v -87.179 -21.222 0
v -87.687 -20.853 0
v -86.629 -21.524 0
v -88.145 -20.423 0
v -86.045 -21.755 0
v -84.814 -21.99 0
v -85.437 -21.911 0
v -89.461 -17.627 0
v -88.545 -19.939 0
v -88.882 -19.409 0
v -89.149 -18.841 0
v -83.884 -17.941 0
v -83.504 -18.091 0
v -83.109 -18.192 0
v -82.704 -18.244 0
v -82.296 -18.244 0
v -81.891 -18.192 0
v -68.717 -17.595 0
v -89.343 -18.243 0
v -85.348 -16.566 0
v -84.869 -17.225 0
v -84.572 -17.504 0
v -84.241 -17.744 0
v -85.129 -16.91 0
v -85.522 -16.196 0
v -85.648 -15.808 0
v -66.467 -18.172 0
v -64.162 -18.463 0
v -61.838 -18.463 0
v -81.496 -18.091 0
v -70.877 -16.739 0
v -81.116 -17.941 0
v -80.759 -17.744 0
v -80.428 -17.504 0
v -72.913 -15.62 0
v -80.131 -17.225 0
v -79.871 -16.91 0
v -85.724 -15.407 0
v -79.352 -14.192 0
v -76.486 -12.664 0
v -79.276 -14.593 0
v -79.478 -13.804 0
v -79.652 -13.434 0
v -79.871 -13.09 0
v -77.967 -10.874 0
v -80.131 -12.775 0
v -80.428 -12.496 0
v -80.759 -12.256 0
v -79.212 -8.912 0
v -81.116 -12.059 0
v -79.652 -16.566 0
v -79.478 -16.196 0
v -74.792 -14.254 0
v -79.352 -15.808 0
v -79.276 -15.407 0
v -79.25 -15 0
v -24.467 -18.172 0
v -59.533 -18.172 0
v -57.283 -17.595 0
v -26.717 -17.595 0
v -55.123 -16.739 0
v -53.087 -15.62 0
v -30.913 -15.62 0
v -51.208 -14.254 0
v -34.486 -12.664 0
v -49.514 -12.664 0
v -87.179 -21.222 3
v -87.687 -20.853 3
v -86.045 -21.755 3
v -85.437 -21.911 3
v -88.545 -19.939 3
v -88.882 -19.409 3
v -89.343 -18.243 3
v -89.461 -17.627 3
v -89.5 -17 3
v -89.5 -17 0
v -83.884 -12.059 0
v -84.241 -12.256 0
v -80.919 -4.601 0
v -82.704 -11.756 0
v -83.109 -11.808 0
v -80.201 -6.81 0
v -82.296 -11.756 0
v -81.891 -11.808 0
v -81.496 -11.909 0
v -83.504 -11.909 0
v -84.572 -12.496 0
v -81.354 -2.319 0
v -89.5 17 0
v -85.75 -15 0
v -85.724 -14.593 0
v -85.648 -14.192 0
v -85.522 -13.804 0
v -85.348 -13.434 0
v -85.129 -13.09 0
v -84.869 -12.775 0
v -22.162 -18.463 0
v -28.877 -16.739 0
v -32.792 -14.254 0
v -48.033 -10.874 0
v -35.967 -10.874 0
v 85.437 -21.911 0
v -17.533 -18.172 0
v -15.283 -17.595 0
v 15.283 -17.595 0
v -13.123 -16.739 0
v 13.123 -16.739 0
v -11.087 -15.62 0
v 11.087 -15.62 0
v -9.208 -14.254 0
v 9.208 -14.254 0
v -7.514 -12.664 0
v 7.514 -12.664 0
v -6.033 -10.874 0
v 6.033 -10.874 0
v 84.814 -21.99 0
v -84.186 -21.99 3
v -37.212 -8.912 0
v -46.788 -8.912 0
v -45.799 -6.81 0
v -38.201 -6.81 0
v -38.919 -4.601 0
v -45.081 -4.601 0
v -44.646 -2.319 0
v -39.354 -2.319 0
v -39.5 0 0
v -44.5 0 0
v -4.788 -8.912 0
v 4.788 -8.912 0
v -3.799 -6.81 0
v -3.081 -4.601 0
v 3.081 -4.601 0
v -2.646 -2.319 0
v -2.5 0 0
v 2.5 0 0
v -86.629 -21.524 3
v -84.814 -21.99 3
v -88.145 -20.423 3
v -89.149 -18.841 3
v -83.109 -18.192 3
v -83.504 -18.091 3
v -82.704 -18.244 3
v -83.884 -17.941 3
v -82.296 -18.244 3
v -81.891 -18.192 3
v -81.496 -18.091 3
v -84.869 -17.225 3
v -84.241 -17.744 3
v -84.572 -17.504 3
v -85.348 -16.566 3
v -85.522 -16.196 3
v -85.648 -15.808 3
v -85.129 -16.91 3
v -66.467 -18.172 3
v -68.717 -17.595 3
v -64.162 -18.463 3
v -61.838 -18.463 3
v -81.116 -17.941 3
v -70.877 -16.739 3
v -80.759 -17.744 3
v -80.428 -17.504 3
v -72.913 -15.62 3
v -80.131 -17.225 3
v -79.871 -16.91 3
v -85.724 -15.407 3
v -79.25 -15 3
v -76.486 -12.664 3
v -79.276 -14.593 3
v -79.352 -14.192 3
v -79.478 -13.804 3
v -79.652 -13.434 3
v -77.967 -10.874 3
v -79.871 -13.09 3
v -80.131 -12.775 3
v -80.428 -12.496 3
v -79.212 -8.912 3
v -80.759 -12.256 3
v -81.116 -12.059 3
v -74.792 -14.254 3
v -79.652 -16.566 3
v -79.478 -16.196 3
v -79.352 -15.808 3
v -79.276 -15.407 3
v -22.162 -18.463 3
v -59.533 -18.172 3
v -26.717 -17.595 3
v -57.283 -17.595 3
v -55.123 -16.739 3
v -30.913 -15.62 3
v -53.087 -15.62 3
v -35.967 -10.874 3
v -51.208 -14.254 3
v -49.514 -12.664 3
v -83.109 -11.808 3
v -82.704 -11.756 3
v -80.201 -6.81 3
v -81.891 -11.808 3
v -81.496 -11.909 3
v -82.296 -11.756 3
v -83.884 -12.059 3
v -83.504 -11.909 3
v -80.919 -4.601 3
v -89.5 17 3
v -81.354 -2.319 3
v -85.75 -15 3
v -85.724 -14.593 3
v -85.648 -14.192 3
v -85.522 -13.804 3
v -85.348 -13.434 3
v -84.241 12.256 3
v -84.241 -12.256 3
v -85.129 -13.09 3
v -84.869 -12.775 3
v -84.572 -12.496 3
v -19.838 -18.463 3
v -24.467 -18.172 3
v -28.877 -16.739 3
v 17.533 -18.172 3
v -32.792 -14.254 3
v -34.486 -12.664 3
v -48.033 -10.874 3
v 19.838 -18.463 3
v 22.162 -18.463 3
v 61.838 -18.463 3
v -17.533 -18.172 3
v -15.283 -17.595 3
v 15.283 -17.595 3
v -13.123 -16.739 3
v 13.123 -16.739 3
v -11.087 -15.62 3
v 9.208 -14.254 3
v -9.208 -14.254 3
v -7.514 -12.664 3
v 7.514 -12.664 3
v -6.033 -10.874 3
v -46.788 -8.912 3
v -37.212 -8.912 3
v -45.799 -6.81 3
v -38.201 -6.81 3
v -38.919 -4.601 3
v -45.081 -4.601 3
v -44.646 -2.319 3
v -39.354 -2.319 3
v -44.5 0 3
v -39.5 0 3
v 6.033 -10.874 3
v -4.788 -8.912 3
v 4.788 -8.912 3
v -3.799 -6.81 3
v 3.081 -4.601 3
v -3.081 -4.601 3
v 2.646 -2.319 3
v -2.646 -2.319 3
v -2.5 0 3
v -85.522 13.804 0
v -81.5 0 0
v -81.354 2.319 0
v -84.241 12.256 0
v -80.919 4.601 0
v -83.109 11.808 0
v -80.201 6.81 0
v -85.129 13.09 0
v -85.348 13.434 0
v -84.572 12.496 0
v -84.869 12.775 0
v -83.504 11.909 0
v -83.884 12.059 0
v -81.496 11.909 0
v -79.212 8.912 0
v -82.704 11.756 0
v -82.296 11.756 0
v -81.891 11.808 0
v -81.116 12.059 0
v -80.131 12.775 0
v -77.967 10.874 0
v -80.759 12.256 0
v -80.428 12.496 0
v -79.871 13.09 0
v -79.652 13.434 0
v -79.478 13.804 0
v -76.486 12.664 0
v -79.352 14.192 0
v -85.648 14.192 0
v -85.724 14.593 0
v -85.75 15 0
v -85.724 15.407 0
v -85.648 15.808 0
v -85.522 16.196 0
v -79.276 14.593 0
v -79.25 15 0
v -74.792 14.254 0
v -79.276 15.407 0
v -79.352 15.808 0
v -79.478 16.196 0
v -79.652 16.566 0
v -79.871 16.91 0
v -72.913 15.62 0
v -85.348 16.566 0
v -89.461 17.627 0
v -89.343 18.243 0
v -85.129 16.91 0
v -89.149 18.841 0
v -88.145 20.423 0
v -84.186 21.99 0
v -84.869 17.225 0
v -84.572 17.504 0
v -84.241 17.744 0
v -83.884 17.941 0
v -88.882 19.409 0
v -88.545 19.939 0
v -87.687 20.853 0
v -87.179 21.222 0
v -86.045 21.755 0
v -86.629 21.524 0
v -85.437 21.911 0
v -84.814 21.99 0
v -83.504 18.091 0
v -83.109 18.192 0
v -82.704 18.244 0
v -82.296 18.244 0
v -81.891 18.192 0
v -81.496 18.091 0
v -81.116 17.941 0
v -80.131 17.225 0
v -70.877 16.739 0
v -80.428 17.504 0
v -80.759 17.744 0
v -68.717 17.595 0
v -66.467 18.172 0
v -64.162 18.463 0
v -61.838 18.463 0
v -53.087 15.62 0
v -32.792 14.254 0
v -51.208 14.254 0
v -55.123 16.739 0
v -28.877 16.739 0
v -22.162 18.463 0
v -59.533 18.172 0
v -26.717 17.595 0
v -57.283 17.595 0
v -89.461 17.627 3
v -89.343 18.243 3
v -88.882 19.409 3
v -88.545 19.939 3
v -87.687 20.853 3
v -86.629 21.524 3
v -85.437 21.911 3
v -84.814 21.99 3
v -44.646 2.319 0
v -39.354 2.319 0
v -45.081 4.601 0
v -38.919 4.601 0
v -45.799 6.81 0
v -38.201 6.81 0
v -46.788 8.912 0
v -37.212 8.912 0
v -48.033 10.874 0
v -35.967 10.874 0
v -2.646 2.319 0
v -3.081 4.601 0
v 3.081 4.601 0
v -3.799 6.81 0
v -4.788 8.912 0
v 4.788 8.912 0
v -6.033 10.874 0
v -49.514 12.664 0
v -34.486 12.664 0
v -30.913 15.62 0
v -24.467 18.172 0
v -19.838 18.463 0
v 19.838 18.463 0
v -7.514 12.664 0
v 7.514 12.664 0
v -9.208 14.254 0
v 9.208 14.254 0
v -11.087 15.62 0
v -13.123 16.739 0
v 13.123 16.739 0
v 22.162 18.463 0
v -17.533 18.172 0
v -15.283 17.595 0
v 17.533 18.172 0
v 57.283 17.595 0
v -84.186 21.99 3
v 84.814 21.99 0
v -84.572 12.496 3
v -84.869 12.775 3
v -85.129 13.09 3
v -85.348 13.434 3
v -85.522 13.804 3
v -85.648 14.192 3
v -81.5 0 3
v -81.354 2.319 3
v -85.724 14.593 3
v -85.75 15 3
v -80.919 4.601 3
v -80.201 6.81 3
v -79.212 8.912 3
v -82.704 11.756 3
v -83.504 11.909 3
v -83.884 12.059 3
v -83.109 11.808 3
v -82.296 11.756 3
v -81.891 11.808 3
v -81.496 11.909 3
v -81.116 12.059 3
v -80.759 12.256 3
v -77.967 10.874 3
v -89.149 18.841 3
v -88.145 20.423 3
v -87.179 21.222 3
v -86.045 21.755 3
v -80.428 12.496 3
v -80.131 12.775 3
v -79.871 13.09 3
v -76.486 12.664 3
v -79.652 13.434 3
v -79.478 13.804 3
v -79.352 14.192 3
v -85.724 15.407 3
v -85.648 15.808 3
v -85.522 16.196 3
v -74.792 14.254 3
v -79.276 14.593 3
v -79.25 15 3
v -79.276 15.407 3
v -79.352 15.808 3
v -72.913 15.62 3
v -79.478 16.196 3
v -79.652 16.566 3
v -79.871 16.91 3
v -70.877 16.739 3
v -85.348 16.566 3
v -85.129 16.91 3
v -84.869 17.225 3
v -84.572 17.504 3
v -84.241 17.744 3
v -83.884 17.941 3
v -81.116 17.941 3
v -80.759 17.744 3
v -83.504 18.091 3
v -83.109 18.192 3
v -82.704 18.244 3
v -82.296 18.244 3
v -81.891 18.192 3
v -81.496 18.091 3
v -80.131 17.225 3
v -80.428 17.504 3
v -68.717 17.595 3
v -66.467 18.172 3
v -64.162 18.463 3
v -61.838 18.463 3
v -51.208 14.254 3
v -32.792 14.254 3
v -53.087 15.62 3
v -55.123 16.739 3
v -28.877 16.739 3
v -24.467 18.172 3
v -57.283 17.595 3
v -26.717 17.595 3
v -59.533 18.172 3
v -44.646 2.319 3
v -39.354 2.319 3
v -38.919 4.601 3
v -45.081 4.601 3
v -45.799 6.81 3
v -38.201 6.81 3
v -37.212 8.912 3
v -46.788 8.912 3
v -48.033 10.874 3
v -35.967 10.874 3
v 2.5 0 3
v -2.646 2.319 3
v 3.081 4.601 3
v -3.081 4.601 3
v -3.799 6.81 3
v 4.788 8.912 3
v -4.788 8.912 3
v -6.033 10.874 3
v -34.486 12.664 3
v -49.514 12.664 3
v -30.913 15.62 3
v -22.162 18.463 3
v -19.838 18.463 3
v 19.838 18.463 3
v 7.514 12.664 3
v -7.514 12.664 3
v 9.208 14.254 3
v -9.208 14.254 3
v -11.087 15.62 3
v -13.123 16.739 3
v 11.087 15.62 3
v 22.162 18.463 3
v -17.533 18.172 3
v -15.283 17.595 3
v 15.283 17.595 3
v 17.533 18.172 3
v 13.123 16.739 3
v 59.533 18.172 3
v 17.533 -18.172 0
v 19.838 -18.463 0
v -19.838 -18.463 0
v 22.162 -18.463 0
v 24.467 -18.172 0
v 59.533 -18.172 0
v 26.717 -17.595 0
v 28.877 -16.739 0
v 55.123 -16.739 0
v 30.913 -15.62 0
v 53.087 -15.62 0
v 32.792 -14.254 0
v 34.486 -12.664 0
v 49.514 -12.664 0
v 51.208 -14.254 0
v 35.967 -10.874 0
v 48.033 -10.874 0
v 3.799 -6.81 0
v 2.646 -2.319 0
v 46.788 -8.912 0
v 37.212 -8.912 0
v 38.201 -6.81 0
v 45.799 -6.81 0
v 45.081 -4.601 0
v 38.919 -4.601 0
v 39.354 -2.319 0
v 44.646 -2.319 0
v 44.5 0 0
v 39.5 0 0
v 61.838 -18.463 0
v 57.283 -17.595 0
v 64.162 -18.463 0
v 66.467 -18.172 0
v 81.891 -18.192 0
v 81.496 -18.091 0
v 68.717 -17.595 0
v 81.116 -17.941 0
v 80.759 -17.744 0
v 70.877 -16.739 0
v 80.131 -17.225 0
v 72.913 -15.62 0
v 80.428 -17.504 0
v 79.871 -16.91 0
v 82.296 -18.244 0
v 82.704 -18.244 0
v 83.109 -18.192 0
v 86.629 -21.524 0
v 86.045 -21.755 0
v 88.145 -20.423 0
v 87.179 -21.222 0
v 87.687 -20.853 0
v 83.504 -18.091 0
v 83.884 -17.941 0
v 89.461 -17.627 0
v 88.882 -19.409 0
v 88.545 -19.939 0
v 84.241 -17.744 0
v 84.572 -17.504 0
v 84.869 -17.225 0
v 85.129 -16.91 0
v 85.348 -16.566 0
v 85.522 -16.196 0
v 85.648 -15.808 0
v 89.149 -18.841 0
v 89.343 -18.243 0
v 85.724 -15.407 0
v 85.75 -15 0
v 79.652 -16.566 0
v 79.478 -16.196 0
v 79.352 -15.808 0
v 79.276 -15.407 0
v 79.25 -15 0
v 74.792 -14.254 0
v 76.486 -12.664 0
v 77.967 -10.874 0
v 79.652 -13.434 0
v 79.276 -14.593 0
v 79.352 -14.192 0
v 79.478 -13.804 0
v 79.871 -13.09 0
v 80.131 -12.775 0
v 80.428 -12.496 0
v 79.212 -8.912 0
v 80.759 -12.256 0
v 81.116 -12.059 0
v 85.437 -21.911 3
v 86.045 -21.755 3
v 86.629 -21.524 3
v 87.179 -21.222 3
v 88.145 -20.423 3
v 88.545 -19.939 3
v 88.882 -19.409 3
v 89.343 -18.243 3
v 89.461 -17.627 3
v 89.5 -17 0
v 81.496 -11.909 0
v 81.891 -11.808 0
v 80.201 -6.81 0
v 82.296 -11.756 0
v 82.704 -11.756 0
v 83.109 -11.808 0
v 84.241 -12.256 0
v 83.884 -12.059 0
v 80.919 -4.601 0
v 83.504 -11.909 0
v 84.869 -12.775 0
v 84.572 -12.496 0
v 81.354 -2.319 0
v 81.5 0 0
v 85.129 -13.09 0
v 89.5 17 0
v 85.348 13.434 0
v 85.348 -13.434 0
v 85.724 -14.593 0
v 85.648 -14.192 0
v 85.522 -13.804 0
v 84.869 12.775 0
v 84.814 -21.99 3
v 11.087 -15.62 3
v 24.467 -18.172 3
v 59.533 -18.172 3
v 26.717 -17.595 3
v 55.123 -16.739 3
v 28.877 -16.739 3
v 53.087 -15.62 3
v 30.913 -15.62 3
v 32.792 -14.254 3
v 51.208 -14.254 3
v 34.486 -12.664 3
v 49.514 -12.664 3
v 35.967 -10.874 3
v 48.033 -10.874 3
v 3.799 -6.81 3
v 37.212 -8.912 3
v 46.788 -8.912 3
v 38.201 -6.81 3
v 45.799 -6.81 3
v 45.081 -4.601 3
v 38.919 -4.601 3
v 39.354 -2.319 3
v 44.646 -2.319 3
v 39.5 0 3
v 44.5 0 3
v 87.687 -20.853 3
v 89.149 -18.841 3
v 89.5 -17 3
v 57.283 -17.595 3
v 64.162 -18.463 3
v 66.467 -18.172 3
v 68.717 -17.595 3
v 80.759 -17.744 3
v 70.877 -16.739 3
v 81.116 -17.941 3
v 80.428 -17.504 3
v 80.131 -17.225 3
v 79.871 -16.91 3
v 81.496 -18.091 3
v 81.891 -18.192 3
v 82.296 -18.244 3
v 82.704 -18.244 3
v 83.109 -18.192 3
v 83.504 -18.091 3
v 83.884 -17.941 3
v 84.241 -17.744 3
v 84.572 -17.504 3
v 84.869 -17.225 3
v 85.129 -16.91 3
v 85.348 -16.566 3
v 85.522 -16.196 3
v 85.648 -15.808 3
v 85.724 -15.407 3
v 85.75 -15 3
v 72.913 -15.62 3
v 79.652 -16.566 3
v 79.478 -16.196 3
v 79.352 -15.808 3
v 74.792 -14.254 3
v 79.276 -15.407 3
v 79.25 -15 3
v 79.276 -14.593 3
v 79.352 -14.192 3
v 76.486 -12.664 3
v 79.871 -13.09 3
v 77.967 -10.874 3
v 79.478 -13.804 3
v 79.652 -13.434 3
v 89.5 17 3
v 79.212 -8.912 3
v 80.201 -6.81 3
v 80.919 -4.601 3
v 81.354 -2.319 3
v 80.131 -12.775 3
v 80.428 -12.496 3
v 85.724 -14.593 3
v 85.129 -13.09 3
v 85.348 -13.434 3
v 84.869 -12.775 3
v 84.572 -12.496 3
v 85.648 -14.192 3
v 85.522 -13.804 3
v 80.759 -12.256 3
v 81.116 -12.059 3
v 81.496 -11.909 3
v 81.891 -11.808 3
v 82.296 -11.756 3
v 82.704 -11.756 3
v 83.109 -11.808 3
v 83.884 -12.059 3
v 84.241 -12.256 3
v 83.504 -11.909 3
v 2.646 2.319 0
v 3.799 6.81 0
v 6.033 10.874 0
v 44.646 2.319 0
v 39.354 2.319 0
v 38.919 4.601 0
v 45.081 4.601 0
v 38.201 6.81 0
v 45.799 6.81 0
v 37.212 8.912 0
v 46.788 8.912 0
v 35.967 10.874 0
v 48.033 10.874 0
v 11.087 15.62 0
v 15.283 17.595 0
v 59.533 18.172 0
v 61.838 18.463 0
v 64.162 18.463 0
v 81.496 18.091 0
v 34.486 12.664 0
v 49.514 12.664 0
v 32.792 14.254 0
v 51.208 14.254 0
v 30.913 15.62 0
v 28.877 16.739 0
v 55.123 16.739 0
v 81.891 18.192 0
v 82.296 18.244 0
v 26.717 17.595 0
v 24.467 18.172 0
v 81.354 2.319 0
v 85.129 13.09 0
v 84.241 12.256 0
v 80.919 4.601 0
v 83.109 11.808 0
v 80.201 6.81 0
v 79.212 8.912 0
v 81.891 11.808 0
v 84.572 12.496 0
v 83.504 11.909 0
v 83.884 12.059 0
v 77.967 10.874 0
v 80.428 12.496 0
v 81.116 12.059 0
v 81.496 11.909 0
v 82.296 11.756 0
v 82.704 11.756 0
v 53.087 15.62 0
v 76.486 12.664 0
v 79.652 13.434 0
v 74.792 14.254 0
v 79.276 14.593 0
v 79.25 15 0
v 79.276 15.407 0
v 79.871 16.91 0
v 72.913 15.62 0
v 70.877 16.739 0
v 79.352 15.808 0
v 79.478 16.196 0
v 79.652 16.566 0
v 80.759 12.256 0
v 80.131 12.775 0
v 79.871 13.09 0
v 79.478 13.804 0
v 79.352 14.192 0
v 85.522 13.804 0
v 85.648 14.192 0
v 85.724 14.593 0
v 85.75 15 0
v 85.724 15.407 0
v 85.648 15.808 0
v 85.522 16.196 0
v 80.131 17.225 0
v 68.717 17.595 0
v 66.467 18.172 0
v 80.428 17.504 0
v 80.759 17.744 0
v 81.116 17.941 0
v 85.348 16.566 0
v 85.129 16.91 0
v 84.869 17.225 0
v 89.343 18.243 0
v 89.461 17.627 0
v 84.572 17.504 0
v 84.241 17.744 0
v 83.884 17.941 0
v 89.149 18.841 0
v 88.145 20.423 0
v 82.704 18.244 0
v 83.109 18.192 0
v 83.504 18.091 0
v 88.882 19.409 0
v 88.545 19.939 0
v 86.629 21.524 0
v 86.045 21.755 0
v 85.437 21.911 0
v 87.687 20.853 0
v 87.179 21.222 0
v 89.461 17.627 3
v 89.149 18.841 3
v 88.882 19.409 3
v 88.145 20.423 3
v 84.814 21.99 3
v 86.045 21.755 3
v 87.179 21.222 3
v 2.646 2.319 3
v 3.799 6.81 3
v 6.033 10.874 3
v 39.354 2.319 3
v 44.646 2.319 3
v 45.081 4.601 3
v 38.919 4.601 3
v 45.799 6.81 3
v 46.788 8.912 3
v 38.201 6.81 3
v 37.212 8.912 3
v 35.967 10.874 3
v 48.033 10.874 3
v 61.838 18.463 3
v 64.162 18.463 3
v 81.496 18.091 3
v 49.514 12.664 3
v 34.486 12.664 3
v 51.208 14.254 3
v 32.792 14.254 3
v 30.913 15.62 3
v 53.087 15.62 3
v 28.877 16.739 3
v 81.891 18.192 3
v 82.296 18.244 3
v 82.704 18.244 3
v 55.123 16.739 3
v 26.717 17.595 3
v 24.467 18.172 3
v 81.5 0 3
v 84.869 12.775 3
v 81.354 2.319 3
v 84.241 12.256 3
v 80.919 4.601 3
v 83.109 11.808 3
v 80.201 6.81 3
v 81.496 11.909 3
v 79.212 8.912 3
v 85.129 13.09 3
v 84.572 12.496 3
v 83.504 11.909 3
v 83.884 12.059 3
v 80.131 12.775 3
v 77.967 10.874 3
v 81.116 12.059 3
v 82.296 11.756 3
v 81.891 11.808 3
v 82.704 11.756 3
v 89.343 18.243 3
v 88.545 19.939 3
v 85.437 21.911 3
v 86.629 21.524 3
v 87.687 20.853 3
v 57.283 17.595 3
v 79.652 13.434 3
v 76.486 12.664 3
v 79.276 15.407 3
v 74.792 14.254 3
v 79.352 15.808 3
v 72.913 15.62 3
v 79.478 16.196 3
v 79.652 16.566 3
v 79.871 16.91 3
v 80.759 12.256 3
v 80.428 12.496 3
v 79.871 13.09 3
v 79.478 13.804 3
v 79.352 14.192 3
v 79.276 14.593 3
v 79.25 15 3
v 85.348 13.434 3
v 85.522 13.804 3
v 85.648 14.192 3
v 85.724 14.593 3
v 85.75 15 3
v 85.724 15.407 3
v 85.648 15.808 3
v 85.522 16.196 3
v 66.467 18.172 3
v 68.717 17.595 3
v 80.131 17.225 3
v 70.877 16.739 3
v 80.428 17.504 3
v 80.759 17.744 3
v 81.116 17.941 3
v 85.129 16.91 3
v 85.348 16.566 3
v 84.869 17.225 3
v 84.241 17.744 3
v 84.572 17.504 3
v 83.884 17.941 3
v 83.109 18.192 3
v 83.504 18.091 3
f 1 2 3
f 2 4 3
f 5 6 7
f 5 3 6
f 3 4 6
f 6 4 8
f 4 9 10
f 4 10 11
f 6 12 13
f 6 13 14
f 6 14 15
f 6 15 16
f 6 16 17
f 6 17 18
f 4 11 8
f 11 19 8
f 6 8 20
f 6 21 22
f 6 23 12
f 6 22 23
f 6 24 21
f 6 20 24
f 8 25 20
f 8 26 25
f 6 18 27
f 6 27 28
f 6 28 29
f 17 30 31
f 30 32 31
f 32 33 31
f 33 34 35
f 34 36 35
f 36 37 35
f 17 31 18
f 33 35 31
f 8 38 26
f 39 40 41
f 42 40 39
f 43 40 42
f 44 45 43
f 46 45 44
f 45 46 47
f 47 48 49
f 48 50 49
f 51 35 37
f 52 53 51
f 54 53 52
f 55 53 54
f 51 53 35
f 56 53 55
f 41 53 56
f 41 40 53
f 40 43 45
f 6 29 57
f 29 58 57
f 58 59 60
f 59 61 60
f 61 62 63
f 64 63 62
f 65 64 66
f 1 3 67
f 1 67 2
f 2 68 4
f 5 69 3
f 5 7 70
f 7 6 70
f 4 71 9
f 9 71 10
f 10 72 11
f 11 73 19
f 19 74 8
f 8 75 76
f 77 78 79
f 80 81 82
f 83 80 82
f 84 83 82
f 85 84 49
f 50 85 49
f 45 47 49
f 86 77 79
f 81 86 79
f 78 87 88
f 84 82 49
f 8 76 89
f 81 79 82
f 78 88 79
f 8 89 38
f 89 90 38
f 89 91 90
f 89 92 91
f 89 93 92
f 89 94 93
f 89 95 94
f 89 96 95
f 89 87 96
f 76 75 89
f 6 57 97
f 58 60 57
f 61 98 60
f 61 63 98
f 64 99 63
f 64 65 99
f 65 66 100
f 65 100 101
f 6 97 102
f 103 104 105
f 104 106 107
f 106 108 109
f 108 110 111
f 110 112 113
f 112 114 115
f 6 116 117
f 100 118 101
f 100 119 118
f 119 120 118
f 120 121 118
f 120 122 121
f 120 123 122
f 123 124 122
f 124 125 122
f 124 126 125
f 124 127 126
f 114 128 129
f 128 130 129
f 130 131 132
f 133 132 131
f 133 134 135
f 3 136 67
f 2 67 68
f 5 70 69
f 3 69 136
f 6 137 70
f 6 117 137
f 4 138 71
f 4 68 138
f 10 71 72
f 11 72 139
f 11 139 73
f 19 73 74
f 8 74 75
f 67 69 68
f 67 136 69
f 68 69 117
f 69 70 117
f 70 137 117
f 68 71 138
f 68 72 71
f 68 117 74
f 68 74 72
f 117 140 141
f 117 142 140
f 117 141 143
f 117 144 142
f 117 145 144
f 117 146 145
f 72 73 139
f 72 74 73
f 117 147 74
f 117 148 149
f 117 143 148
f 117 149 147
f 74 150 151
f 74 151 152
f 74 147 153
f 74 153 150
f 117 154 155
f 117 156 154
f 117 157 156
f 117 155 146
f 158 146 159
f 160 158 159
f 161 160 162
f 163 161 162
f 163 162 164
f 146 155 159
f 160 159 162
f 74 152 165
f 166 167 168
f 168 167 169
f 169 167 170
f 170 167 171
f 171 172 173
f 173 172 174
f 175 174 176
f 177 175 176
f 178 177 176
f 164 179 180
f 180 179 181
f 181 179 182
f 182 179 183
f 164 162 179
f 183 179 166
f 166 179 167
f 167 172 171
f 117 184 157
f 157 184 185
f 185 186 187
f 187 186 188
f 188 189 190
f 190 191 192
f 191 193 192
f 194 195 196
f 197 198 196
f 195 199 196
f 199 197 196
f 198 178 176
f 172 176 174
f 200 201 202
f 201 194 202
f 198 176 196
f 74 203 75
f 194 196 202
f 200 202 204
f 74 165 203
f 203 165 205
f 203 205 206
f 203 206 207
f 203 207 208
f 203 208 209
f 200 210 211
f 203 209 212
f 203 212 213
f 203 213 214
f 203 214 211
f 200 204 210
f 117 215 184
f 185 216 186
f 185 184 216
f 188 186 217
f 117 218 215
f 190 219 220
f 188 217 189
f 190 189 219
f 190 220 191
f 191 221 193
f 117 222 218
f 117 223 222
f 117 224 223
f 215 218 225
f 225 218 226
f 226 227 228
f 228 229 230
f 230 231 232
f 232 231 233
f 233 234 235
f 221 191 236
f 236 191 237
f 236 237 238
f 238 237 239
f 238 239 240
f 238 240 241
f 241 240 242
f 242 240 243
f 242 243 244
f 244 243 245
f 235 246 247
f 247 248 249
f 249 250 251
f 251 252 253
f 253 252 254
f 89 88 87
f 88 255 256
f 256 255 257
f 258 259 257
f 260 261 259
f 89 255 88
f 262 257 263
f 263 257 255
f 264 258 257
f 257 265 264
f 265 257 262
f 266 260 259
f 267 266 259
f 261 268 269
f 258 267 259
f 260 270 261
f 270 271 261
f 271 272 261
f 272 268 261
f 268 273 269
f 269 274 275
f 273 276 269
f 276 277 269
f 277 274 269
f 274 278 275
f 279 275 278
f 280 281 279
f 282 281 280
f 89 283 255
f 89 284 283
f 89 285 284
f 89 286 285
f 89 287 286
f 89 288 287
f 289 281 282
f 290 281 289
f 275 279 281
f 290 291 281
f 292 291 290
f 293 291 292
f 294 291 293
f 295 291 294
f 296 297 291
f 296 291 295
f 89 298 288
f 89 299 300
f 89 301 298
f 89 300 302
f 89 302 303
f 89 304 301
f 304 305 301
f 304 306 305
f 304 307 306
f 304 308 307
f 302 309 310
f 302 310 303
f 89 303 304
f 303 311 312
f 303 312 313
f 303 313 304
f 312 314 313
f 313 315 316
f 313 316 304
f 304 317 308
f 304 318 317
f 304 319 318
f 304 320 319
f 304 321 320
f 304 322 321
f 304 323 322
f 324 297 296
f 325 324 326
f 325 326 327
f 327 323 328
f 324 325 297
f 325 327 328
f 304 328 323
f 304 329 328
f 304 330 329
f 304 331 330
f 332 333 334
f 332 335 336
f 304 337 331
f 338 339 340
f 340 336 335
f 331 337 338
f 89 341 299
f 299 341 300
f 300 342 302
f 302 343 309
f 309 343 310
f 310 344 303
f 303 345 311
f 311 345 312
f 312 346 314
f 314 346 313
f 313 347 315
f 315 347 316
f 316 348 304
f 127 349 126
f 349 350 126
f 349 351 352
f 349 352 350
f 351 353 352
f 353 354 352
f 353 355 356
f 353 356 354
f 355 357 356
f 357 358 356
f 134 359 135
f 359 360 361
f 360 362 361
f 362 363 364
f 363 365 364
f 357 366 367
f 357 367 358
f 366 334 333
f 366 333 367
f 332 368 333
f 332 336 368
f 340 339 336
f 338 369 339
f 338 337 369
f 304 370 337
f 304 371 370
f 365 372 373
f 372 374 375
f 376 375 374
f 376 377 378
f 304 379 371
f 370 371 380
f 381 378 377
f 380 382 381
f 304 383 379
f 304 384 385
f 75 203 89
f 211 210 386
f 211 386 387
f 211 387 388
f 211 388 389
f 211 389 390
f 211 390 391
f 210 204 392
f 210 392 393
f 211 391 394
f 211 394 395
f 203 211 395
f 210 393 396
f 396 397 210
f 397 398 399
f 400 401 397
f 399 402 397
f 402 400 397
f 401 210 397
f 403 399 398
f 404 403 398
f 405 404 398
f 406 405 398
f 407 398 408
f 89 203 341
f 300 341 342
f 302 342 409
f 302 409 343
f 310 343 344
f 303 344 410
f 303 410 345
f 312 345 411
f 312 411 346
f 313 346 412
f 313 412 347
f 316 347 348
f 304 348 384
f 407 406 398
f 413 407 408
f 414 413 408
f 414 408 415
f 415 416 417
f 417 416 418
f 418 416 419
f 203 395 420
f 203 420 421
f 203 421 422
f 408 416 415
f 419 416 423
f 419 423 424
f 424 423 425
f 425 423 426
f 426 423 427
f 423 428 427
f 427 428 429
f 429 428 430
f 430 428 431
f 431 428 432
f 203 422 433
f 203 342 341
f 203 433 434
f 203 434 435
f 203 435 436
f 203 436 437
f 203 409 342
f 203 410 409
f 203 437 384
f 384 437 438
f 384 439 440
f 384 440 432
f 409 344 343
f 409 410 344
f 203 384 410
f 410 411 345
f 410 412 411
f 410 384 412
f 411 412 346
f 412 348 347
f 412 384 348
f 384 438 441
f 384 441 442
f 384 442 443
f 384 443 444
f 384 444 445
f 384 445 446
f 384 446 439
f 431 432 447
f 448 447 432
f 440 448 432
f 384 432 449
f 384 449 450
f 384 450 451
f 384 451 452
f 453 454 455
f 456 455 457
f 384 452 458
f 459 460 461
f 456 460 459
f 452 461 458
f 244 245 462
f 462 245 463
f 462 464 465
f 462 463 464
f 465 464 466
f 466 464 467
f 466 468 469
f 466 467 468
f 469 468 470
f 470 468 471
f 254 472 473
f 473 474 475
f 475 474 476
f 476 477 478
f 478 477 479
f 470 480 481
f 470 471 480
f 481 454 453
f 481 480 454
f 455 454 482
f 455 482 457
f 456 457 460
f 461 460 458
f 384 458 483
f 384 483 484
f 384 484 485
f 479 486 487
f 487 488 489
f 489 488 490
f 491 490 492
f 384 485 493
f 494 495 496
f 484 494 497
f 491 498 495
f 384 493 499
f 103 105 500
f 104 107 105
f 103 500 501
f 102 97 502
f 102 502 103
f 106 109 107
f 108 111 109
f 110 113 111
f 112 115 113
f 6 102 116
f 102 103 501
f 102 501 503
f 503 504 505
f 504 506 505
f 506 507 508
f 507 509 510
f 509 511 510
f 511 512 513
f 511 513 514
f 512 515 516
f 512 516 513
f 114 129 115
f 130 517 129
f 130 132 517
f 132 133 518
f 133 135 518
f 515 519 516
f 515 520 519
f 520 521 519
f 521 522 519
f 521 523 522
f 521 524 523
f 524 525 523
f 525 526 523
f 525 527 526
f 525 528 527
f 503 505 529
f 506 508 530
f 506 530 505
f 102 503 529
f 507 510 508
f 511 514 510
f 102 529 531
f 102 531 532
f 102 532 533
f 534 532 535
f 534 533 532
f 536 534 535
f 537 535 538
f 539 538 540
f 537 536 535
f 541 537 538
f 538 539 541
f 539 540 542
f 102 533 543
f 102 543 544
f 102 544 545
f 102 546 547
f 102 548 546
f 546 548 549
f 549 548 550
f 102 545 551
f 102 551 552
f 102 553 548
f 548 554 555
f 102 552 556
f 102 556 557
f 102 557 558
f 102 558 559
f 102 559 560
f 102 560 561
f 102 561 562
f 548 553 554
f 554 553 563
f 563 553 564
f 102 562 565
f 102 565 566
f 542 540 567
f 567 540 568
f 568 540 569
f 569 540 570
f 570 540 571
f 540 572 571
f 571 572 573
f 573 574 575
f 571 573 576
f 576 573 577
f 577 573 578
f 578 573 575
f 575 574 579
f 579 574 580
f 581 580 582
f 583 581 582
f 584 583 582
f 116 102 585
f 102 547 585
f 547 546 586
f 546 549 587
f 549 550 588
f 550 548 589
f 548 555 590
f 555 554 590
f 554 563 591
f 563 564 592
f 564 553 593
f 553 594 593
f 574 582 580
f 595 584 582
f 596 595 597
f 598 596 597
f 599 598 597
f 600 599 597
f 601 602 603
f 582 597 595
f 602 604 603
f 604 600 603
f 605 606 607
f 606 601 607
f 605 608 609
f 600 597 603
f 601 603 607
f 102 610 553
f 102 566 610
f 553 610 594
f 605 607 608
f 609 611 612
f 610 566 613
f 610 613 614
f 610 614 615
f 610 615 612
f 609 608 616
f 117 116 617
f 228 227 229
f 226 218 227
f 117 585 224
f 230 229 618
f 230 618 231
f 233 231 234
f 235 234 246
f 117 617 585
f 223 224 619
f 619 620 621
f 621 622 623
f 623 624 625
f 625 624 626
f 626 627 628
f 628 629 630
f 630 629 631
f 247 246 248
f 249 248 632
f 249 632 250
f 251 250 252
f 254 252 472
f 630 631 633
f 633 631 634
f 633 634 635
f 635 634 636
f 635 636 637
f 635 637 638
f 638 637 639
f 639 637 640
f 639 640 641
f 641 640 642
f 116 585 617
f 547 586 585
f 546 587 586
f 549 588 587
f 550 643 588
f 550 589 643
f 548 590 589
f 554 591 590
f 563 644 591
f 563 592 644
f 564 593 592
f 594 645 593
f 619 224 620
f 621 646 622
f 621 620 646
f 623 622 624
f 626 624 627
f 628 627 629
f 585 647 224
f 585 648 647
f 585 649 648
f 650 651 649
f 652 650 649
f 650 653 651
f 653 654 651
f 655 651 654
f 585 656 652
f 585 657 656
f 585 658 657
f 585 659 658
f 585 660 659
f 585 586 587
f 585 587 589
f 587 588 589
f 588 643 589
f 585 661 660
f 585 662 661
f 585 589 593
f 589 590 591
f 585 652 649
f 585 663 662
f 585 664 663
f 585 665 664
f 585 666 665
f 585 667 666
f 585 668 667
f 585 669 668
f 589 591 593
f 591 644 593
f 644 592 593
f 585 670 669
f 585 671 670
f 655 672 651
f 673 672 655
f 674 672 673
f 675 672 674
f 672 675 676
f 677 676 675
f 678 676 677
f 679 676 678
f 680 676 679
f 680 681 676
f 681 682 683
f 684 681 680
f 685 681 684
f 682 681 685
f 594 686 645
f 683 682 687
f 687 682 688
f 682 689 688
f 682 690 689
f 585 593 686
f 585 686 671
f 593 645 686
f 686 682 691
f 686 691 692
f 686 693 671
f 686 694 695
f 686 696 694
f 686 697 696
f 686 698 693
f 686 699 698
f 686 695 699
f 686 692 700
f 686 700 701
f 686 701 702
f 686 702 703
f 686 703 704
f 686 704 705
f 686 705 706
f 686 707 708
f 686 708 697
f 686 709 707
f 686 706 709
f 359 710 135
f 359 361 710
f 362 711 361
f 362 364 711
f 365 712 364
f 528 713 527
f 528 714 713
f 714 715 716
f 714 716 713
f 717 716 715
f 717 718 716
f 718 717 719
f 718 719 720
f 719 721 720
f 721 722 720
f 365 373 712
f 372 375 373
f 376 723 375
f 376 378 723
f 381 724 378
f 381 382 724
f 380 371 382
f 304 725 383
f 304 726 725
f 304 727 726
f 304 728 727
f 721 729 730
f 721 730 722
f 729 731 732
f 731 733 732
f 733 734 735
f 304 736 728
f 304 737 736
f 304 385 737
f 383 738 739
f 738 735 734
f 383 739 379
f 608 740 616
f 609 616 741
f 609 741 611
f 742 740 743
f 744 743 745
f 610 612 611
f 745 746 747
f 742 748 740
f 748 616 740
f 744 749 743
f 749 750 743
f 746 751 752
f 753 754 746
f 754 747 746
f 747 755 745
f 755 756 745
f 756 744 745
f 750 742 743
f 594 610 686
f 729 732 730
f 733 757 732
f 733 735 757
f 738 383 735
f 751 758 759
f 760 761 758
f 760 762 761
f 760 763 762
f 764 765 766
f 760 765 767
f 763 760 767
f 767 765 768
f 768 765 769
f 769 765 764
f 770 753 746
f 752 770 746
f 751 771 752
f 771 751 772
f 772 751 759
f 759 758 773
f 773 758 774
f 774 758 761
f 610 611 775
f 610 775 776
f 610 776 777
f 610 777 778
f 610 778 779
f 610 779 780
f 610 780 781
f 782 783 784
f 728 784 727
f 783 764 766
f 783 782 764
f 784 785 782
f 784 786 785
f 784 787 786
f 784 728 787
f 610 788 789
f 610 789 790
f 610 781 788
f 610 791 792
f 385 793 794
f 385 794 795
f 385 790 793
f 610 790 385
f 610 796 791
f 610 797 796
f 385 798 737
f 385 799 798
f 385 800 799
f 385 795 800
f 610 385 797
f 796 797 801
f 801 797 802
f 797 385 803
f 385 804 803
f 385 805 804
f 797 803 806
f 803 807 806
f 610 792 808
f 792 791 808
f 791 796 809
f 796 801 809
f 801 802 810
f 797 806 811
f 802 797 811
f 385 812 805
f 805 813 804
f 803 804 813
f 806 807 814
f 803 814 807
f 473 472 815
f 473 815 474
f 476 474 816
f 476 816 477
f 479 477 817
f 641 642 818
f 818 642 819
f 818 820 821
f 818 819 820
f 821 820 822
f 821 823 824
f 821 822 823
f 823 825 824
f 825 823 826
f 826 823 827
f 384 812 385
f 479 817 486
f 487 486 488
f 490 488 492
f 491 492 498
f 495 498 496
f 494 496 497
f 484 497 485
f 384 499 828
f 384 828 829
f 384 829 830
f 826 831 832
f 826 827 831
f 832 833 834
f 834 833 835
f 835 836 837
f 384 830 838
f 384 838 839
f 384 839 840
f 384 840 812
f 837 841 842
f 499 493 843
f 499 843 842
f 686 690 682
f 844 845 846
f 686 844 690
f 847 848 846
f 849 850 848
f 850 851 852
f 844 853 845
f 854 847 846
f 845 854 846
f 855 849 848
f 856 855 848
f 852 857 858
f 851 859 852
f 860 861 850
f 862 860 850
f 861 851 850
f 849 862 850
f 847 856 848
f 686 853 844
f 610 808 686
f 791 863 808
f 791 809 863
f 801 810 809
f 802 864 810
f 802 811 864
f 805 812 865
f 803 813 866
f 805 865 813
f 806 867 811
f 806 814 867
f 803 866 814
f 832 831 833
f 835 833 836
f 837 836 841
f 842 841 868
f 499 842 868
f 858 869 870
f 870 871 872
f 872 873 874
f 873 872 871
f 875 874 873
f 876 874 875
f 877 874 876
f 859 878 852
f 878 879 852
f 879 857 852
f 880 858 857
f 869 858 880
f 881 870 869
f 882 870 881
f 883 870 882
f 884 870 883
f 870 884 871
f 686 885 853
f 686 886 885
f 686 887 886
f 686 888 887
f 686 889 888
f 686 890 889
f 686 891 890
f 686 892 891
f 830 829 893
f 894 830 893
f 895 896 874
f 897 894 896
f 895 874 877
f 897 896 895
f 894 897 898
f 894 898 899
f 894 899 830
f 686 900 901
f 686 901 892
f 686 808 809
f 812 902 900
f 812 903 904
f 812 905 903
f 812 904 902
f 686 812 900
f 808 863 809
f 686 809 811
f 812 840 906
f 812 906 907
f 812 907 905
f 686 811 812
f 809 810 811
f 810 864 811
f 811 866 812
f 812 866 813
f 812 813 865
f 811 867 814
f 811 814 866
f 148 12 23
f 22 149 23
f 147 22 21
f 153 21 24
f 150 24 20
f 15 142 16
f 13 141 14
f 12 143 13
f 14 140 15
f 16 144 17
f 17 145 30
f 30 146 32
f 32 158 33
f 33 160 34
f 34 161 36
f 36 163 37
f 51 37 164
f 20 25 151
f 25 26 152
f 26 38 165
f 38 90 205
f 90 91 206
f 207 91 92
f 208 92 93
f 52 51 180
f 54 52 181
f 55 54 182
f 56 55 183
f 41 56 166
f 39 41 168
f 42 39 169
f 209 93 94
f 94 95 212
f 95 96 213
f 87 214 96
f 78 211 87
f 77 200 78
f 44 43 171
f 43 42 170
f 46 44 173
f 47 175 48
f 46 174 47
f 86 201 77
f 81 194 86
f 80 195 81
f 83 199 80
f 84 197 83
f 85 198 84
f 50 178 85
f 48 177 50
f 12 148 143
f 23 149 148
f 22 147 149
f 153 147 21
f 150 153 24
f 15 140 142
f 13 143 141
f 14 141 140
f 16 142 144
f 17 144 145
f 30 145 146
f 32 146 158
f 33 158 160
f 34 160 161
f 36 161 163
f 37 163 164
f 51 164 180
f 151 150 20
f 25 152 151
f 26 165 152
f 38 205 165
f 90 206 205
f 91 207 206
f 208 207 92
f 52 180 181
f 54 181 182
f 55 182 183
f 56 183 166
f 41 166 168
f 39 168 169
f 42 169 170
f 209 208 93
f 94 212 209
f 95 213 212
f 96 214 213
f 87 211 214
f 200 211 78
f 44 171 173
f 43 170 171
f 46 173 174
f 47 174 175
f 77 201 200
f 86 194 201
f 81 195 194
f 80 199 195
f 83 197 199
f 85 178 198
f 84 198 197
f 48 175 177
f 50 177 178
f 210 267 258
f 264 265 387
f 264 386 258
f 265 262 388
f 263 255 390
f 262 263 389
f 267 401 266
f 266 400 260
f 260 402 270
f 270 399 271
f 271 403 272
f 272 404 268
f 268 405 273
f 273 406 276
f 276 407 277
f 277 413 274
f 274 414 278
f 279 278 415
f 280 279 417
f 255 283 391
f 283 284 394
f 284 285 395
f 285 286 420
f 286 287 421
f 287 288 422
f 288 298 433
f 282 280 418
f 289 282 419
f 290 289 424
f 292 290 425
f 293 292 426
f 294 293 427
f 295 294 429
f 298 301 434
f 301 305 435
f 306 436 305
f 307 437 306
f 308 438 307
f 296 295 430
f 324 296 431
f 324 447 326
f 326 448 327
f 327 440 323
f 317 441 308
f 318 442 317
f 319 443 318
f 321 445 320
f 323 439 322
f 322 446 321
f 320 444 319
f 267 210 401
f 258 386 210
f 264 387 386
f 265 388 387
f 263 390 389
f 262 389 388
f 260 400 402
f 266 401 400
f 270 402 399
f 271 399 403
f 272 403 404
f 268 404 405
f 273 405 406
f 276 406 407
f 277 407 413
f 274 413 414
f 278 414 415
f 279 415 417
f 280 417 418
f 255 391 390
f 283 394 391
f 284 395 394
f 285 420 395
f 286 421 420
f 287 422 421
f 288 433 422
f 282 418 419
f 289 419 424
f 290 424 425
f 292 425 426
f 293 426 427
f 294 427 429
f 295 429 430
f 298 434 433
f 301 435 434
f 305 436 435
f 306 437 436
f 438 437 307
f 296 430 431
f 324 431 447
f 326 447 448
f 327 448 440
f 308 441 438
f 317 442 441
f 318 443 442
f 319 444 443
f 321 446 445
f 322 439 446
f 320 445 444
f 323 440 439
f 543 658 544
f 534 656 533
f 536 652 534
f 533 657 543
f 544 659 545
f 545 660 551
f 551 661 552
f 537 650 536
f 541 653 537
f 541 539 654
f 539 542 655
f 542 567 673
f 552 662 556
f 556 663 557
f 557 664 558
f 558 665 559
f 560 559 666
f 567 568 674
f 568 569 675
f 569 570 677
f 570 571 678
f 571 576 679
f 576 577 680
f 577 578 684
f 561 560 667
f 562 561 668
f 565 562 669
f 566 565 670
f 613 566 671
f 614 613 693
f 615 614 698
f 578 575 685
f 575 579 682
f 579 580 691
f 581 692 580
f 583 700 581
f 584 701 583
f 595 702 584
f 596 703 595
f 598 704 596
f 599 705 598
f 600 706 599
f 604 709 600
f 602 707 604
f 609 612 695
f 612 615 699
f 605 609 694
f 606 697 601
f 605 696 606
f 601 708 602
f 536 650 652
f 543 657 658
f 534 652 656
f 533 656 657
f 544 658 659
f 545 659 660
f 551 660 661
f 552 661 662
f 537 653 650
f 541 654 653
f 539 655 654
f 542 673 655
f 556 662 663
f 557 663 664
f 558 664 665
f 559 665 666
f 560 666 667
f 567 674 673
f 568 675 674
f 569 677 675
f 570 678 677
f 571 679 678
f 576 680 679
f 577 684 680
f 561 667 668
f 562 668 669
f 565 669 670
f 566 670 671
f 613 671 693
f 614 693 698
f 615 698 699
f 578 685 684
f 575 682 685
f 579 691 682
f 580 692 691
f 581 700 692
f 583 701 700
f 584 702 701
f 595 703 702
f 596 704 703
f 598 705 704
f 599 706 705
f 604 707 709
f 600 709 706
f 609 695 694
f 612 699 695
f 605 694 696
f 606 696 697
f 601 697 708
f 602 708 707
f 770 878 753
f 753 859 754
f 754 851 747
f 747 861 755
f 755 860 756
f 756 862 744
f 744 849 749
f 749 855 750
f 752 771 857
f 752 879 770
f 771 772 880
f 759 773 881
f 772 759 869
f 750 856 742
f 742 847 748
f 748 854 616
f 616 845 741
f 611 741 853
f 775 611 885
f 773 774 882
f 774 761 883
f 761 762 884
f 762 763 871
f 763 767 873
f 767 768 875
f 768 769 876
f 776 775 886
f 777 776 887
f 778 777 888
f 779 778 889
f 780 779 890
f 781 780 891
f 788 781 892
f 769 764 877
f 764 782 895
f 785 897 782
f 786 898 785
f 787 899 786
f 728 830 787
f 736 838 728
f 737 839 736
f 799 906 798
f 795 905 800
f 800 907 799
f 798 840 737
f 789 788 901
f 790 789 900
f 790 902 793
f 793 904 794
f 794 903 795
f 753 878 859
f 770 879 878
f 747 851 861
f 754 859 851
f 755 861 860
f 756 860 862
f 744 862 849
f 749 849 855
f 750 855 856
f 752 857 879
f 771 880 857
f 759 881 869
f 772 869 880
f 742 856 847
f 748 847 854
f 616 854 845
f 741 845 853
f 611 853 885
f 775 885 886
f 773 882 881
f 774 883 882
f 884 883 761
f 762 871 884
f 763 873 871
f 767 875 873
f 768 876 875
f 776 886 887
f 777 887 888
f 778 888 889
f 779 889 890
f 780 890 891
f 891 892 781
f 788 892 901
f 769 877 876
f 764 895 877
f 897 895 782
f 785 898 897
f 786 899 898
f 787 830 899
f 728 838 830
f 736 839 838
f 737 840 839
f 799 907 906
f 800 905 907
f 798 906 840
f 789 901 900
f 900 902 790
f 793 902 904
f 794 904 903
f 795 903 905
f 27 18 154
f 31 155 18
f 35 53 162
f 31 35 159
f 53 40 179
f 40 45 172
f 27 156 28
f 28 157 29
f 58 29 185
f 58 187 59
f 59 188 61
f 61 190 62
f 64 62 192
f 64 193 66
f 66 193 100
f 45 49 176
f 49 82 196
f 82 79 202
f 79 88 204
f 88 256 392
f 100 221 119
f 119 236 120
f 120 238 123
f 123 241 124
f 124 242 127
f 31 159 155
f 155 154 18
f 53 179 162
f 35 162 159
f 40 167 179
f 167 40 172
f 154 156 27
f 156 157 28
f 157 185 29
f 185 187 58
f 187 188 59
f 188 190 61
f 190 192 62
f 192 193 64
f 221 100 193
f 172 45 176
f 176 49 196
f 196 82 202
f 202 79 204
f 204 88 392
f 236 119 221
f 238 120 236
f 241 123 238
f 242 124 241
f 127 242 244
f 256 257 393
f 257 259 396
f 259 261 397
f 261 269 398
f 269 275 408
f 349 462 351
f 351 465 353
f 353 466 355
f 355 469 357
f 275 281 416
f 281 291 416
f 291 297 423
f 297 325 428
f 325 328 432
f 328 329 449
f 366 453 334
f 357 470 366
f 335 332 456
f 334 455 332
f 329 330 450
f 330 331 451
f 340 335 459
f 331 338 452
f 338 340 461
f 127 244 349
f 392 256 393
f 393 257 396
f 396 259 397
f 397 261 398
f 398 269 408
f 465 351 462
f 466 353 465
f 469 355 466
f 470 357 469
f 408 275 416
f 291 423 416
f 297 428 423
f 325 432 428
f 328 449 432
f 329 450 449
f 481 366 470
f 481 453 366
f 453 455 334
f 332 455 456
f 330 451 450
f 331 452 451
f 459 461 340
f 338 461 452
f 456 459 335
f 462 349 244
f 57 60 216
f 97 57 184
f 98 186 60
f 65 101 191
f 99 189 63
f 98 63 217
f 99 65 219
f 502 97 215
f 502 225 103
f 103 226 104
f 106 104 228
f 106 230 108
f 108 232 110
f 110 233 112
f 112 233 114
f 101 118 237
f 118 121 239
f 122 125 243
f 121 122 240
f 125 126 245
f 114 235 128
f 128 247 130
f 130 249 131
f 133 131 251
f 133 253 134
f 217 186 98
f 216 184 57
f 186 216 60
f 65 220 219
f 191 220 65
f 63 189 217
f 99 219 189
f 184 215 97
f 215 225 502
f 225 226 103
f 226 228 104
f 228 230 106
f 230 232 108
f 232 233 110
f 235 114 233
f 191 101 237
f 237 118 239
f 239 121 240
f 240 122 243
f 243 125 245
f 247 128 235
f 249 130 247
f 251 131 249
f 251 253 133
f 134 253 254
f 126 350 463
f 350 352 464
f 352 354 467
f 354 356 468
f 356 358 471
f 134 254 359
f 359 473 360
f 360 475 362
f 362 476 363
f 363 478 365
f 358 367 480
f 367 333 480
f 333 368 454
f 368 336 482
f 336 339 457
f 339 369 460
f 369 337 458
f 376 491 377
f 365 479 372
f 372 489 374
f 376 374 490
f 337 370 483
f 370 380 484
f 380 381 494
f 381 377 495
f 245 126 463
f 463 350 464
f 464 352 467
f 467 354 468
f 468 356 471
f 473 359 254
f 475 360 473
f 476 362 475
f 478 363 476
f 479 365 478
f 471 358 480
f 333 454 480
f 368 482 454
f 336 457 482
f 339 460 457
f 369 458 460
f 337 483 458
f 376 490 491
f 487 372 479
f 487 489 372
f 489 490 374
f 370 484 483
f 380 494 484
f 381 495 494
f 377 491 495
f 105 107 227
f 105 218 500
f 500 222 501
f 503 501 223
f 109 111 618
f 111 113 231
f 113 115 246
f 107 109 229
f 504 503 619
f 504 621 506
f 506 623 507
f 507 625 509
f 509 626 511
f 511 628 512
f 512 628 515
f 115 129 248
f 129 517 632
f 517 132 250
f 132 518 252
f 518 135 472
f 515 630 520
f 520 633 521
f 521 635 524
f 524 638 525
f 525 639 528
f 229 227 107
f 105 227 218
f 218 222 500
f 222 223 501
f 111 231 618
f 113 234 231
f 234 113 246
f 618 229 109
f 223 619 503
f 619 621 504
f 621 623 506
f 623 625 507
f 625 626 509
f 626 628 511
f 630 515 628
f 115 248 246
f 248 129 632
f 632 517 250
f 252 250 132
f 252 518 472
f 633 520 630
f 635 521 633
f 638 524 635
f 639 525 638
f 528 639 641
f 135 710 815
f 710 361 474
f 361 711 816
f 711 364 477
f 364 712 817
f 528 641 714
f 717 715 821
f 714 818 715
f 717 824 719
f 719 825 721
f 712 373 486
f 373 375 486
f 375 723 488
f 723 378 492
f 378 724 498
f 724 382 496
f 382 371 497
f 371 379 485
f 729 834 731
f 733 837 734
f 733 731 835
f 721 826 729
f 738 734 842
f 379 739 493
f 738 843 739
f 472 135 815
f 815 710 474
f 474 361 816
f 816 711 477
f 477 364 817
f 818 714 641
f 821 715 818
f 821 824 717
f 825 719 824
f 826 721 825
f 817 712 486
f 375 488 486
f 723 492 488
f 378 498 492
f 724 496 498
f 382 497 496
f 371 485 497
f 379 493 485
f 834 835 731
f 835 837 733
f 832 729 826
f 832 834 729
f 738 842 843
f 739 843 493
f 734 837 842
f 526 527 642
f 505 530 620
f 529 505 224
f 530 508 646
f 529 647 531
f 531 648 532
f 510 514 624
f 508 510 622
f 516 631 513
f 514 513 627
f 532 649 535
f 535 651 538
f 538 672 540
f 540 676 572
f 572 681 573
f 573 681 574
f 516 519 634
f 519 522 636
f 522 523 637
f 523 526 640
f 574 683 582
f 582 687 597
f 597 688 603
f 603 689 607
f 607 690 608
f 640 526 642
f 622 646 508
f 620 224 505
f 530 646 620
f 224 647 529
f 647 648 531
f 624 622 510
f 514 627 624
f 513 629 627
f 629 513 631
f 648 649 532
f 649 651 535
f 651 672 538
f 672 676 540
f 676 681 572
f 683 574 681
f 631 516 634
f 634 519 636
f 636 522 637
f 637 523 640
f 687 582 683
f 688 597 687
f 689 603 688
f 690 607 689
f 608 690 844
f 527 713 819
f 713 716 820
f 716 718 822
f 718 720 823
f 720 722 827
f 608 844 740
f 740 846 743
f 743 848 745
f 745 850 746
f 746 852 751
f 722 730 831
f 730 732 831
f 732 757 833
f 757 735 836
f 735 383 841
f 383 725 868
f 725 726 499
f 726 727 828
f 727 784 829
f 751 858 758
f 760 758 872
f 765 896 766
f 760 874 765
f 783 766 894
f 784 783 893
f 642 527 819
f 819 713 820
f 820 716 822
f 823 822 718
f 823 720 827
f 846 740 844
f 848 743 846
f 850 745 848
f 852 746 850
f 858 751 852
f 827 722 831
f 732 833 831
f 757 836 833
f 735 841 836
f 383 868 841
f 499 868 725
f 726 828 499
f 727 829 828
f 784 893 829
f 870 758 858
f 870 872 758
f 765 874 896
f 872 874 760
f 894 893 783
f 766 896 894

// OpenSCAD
$fn = 50;

difference() {
	union() {
		hull() {
			translate(v = [-84.5, 17.0, 0]) {
				cylinder(h = 3, r = 5);
			}
			translate(v = [84.5, 17.0, 0]) {
				cylinder(h = 3, r = 5);
			}
			translate(v = [-84.5, -17.0, 0]) {
				cylinder(h = 3, r = 5);
			}
			translate(v = [84.5, -17.0, 0]) {
				cylinder(h = 3, r = 5);
			}
		}
	}
	union() {
		translate(v = [-82.5, -15.0, -100.0]) {
			cylinder(h = 200, r = 3.25);
		}
		translate(v = [-82.5, 15.0, -100.0]) {
			cylinder(h = 200, r = 3.25);
		}
		translate(v = [82.5, -15.0, -100.0]) {
			cylinder(h = 200, r = 3.25);
		}
		translate(v = [82.5, 15.0, -100.0]) {
			cylinder(h = 200, r = 3.25);
		}
		translate(v = [-82.5, -15.0, -100.0]) {
			cylinder(h = 200, r = 1.8);
		}
		translate(v = [-82.5, 15.0, -100.0]) {
			cylinder(h = 200, r = 1.8);
		}
		translate(v = [82.5, -15.0, -100.0]) {
			cylinder(h = 200, r = 1.8);
		}
		translate(v = [82.5, 15.0, -100.0]) {
			cylinder(h = 200, r = 1.8);
		}
		translate(v = [-63.0, 0, 0.0]) {
			cylinder(h = 3, r = 18.5);
		}
		translate(v = [-21.0, 0, 0.0]) {
			cylinder(h = 3, r = 18.5);
		}
		translate(v = [21.0, 0, 0.0]) {
			cylinder(h = 3, r = 18.5);
		}
		translate(v = [63.0, 0, 0.0]) {
			cylinder(h = 3, r = 18.5);
		}
	}
}
